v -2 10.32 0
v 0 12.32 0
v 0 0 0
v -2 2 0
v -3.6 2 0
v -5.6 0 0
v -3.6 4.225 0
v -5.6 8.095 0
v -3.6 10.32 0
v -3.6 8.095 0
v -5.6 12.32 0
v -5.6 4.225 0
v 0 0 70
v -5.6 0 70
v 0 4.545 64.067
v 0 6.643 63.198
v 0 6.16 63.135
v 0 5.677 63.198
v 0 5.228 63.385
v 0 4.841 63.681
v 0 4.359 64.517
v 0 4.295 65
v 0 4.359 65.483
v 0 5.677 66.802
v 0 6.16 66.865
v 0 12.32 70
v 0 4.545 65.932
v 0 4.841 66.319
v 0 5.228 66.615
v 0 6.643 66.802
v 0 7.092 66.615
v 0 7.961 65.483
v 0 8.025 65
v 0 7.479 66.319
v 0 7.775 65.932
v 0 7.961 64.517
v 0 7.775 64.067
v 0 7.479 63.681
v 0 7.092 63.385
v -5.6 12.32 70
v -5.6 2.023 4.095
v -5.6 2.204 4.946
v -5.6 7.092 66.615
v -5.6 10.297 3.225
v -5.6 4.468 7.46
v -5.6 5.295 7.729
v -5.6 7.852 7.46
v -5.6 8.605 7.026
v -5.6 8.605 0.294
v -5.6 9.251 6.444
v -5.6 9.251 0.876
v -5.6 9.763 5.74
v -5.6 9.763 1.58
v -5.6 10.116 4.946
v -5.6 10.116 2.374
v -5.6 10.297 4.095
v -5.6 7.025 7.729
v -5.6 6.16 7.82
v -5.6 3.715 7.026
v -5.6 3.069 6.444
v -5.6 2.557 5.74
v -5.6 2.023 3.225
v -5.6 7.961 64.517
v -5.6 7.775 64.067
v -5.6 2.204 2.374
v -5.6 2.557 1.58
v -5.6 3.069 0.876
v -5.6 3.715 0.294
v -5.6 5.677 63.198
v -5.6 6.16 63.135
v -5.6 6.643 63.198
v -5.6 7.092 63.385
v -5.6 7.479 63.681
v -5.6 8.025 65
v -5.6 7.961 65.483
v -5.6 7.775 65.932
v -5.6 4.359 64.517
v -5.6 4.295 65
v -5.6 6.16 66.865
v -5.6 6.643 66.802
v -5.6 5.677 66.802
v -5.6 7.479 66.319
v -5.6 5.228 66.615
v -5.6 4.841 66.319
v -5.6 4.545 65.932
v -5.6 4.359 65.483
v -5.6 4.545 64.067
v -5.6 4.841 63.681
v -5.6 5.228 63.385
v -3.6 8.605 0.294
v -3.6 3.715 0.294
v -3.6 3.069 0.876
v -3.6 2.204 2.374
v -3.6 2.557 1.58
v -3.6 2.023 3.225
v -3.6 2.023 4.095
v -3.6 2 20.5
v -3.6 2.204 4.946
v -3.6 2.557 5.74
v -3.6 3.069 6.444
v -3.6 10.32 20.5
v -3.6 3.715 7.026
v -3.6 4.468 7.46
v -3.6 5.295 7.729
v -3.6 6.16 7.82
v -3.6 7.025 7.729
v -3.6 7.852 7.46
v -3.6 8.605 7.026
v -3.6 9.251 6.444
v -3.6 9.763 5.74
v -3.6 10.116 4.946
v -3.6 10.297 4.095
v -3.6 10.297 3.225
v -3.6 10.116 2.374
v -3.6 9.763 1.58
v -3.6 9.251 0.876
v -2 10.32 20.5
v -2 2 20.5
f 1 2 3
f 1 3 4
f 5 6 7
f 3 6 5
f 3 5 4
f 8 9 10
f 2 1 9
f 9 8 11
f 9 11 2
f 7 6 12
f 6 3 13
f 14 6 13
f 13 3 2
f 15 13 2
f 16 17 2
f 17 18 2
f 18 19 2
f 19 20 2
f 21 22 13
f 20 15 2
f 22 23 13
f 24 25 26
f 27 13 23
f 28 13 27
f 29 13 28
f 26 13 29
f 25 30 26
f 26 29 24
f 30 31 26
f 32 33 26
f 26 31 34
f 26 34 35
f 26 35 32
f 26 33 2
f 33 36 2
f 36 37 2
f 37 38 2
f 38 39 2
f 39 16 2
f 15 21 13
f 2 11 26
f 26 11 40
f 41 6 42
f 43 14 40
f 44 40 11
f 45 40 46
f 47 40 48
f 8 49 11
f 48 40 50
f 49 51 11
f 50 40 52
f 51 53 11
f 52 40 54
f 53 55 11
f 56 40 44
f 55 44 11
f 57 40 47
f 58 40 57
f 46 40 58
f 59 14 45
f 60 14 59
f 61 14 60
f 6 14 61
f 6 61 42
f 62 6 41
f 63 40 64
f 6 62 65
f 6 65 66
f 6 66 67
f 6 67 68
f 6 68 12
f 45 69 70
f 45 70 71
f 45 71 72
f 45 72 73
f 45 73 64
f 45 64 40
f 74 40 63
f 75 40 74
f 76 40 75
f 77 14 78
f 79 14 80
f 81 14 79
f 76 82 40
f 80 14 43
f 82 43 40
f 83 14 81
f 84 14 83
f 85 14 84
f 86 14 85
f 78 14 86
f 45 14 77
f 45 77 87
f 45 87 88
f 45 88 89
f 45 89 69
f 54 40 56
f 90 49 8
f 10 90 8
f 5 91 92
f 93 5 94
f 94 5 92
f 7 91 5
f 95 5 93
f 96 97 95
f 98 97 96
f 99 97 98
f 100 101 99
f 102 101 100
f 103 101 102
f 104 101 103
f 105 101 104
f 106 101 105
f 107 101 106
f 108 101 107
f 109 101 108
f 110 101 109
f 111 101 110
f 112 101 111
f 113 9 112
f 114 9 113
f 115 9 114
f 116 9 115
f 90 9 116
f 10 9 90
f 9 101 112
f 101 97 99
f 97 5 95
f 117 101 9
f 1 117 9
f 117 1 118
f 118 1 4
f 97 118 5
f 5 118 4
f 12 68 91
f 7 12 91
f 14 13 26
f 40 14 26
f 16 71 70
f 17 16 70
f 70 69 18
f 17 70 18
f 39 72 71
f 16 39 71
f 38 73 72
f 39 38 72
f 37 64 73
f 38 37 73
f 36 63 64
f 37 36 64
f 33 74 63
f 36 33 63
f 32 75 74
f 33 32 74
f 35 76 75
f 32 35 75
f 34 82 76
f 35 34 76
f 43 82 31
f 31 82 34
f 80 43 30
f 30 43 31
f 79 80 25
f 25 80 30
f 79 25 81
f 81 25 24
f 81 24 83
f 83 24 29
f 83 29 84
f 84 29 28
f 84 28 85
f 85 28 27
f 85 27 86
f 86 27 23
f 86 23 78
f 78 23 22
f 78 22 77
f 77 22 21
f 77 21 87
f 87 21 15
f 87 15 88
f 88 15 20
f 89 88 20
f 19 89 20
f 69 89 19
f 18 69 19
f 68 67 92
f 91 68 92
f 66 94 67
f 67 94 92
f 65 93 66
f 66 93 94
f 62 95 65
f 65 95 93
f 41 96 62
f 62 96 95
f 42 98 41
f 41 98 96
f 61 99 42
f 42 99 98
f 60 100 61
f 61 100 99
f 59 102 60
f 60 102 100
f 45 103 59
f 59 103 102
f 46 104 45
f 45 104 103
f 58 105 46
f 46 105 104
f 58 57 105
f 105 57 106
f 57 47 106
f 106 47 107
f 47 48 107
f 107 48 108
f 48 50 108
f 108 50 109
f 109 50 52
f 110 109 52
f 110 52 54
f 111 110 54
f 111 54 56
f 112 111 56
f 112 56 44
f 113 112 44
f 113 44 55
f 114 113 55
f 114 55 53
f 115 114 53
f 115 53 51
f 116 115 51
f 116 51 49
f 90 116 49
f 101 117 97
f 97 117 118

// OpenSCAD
head_diameter = 7.32;
head_radius = head_diameter / 2;
head_height = 4.3;
arm_height = 1.6;
arm_length = 20;
offset=0.1;
wire_diameter=2.73;
wire_radius = 0.5*wire_diameter;


wall_width = 2;
give = 0.5;

component_width = head_diameter + 2*give + 2*wall_width;
component_height = arm_height + 2*wall_width;
component_length = 70;

rotate(-90, [0,1,0]){
difference(){
	cube([component_length, component_width, component_height]);
	translate([-offset, wall_width, wall_width]){
		cube([
			arm_length+offset+give,
			head_diameter+2*give,
			arm_height
		]);
	}
	translate([head_radius, 0.5*component_width, arm_height+2*give]){
		cylinder(r=head_radius+give, h=component_height, $fs=0.5);
	}
	translate([component_length-(17),-offset,-offset]){
		translate([12,0.5*component_width+offset,0]){
			cylinder(r=wire_radius+give, h=component_height+2*offset, $fs=0.5);
		}
	}
}

}
